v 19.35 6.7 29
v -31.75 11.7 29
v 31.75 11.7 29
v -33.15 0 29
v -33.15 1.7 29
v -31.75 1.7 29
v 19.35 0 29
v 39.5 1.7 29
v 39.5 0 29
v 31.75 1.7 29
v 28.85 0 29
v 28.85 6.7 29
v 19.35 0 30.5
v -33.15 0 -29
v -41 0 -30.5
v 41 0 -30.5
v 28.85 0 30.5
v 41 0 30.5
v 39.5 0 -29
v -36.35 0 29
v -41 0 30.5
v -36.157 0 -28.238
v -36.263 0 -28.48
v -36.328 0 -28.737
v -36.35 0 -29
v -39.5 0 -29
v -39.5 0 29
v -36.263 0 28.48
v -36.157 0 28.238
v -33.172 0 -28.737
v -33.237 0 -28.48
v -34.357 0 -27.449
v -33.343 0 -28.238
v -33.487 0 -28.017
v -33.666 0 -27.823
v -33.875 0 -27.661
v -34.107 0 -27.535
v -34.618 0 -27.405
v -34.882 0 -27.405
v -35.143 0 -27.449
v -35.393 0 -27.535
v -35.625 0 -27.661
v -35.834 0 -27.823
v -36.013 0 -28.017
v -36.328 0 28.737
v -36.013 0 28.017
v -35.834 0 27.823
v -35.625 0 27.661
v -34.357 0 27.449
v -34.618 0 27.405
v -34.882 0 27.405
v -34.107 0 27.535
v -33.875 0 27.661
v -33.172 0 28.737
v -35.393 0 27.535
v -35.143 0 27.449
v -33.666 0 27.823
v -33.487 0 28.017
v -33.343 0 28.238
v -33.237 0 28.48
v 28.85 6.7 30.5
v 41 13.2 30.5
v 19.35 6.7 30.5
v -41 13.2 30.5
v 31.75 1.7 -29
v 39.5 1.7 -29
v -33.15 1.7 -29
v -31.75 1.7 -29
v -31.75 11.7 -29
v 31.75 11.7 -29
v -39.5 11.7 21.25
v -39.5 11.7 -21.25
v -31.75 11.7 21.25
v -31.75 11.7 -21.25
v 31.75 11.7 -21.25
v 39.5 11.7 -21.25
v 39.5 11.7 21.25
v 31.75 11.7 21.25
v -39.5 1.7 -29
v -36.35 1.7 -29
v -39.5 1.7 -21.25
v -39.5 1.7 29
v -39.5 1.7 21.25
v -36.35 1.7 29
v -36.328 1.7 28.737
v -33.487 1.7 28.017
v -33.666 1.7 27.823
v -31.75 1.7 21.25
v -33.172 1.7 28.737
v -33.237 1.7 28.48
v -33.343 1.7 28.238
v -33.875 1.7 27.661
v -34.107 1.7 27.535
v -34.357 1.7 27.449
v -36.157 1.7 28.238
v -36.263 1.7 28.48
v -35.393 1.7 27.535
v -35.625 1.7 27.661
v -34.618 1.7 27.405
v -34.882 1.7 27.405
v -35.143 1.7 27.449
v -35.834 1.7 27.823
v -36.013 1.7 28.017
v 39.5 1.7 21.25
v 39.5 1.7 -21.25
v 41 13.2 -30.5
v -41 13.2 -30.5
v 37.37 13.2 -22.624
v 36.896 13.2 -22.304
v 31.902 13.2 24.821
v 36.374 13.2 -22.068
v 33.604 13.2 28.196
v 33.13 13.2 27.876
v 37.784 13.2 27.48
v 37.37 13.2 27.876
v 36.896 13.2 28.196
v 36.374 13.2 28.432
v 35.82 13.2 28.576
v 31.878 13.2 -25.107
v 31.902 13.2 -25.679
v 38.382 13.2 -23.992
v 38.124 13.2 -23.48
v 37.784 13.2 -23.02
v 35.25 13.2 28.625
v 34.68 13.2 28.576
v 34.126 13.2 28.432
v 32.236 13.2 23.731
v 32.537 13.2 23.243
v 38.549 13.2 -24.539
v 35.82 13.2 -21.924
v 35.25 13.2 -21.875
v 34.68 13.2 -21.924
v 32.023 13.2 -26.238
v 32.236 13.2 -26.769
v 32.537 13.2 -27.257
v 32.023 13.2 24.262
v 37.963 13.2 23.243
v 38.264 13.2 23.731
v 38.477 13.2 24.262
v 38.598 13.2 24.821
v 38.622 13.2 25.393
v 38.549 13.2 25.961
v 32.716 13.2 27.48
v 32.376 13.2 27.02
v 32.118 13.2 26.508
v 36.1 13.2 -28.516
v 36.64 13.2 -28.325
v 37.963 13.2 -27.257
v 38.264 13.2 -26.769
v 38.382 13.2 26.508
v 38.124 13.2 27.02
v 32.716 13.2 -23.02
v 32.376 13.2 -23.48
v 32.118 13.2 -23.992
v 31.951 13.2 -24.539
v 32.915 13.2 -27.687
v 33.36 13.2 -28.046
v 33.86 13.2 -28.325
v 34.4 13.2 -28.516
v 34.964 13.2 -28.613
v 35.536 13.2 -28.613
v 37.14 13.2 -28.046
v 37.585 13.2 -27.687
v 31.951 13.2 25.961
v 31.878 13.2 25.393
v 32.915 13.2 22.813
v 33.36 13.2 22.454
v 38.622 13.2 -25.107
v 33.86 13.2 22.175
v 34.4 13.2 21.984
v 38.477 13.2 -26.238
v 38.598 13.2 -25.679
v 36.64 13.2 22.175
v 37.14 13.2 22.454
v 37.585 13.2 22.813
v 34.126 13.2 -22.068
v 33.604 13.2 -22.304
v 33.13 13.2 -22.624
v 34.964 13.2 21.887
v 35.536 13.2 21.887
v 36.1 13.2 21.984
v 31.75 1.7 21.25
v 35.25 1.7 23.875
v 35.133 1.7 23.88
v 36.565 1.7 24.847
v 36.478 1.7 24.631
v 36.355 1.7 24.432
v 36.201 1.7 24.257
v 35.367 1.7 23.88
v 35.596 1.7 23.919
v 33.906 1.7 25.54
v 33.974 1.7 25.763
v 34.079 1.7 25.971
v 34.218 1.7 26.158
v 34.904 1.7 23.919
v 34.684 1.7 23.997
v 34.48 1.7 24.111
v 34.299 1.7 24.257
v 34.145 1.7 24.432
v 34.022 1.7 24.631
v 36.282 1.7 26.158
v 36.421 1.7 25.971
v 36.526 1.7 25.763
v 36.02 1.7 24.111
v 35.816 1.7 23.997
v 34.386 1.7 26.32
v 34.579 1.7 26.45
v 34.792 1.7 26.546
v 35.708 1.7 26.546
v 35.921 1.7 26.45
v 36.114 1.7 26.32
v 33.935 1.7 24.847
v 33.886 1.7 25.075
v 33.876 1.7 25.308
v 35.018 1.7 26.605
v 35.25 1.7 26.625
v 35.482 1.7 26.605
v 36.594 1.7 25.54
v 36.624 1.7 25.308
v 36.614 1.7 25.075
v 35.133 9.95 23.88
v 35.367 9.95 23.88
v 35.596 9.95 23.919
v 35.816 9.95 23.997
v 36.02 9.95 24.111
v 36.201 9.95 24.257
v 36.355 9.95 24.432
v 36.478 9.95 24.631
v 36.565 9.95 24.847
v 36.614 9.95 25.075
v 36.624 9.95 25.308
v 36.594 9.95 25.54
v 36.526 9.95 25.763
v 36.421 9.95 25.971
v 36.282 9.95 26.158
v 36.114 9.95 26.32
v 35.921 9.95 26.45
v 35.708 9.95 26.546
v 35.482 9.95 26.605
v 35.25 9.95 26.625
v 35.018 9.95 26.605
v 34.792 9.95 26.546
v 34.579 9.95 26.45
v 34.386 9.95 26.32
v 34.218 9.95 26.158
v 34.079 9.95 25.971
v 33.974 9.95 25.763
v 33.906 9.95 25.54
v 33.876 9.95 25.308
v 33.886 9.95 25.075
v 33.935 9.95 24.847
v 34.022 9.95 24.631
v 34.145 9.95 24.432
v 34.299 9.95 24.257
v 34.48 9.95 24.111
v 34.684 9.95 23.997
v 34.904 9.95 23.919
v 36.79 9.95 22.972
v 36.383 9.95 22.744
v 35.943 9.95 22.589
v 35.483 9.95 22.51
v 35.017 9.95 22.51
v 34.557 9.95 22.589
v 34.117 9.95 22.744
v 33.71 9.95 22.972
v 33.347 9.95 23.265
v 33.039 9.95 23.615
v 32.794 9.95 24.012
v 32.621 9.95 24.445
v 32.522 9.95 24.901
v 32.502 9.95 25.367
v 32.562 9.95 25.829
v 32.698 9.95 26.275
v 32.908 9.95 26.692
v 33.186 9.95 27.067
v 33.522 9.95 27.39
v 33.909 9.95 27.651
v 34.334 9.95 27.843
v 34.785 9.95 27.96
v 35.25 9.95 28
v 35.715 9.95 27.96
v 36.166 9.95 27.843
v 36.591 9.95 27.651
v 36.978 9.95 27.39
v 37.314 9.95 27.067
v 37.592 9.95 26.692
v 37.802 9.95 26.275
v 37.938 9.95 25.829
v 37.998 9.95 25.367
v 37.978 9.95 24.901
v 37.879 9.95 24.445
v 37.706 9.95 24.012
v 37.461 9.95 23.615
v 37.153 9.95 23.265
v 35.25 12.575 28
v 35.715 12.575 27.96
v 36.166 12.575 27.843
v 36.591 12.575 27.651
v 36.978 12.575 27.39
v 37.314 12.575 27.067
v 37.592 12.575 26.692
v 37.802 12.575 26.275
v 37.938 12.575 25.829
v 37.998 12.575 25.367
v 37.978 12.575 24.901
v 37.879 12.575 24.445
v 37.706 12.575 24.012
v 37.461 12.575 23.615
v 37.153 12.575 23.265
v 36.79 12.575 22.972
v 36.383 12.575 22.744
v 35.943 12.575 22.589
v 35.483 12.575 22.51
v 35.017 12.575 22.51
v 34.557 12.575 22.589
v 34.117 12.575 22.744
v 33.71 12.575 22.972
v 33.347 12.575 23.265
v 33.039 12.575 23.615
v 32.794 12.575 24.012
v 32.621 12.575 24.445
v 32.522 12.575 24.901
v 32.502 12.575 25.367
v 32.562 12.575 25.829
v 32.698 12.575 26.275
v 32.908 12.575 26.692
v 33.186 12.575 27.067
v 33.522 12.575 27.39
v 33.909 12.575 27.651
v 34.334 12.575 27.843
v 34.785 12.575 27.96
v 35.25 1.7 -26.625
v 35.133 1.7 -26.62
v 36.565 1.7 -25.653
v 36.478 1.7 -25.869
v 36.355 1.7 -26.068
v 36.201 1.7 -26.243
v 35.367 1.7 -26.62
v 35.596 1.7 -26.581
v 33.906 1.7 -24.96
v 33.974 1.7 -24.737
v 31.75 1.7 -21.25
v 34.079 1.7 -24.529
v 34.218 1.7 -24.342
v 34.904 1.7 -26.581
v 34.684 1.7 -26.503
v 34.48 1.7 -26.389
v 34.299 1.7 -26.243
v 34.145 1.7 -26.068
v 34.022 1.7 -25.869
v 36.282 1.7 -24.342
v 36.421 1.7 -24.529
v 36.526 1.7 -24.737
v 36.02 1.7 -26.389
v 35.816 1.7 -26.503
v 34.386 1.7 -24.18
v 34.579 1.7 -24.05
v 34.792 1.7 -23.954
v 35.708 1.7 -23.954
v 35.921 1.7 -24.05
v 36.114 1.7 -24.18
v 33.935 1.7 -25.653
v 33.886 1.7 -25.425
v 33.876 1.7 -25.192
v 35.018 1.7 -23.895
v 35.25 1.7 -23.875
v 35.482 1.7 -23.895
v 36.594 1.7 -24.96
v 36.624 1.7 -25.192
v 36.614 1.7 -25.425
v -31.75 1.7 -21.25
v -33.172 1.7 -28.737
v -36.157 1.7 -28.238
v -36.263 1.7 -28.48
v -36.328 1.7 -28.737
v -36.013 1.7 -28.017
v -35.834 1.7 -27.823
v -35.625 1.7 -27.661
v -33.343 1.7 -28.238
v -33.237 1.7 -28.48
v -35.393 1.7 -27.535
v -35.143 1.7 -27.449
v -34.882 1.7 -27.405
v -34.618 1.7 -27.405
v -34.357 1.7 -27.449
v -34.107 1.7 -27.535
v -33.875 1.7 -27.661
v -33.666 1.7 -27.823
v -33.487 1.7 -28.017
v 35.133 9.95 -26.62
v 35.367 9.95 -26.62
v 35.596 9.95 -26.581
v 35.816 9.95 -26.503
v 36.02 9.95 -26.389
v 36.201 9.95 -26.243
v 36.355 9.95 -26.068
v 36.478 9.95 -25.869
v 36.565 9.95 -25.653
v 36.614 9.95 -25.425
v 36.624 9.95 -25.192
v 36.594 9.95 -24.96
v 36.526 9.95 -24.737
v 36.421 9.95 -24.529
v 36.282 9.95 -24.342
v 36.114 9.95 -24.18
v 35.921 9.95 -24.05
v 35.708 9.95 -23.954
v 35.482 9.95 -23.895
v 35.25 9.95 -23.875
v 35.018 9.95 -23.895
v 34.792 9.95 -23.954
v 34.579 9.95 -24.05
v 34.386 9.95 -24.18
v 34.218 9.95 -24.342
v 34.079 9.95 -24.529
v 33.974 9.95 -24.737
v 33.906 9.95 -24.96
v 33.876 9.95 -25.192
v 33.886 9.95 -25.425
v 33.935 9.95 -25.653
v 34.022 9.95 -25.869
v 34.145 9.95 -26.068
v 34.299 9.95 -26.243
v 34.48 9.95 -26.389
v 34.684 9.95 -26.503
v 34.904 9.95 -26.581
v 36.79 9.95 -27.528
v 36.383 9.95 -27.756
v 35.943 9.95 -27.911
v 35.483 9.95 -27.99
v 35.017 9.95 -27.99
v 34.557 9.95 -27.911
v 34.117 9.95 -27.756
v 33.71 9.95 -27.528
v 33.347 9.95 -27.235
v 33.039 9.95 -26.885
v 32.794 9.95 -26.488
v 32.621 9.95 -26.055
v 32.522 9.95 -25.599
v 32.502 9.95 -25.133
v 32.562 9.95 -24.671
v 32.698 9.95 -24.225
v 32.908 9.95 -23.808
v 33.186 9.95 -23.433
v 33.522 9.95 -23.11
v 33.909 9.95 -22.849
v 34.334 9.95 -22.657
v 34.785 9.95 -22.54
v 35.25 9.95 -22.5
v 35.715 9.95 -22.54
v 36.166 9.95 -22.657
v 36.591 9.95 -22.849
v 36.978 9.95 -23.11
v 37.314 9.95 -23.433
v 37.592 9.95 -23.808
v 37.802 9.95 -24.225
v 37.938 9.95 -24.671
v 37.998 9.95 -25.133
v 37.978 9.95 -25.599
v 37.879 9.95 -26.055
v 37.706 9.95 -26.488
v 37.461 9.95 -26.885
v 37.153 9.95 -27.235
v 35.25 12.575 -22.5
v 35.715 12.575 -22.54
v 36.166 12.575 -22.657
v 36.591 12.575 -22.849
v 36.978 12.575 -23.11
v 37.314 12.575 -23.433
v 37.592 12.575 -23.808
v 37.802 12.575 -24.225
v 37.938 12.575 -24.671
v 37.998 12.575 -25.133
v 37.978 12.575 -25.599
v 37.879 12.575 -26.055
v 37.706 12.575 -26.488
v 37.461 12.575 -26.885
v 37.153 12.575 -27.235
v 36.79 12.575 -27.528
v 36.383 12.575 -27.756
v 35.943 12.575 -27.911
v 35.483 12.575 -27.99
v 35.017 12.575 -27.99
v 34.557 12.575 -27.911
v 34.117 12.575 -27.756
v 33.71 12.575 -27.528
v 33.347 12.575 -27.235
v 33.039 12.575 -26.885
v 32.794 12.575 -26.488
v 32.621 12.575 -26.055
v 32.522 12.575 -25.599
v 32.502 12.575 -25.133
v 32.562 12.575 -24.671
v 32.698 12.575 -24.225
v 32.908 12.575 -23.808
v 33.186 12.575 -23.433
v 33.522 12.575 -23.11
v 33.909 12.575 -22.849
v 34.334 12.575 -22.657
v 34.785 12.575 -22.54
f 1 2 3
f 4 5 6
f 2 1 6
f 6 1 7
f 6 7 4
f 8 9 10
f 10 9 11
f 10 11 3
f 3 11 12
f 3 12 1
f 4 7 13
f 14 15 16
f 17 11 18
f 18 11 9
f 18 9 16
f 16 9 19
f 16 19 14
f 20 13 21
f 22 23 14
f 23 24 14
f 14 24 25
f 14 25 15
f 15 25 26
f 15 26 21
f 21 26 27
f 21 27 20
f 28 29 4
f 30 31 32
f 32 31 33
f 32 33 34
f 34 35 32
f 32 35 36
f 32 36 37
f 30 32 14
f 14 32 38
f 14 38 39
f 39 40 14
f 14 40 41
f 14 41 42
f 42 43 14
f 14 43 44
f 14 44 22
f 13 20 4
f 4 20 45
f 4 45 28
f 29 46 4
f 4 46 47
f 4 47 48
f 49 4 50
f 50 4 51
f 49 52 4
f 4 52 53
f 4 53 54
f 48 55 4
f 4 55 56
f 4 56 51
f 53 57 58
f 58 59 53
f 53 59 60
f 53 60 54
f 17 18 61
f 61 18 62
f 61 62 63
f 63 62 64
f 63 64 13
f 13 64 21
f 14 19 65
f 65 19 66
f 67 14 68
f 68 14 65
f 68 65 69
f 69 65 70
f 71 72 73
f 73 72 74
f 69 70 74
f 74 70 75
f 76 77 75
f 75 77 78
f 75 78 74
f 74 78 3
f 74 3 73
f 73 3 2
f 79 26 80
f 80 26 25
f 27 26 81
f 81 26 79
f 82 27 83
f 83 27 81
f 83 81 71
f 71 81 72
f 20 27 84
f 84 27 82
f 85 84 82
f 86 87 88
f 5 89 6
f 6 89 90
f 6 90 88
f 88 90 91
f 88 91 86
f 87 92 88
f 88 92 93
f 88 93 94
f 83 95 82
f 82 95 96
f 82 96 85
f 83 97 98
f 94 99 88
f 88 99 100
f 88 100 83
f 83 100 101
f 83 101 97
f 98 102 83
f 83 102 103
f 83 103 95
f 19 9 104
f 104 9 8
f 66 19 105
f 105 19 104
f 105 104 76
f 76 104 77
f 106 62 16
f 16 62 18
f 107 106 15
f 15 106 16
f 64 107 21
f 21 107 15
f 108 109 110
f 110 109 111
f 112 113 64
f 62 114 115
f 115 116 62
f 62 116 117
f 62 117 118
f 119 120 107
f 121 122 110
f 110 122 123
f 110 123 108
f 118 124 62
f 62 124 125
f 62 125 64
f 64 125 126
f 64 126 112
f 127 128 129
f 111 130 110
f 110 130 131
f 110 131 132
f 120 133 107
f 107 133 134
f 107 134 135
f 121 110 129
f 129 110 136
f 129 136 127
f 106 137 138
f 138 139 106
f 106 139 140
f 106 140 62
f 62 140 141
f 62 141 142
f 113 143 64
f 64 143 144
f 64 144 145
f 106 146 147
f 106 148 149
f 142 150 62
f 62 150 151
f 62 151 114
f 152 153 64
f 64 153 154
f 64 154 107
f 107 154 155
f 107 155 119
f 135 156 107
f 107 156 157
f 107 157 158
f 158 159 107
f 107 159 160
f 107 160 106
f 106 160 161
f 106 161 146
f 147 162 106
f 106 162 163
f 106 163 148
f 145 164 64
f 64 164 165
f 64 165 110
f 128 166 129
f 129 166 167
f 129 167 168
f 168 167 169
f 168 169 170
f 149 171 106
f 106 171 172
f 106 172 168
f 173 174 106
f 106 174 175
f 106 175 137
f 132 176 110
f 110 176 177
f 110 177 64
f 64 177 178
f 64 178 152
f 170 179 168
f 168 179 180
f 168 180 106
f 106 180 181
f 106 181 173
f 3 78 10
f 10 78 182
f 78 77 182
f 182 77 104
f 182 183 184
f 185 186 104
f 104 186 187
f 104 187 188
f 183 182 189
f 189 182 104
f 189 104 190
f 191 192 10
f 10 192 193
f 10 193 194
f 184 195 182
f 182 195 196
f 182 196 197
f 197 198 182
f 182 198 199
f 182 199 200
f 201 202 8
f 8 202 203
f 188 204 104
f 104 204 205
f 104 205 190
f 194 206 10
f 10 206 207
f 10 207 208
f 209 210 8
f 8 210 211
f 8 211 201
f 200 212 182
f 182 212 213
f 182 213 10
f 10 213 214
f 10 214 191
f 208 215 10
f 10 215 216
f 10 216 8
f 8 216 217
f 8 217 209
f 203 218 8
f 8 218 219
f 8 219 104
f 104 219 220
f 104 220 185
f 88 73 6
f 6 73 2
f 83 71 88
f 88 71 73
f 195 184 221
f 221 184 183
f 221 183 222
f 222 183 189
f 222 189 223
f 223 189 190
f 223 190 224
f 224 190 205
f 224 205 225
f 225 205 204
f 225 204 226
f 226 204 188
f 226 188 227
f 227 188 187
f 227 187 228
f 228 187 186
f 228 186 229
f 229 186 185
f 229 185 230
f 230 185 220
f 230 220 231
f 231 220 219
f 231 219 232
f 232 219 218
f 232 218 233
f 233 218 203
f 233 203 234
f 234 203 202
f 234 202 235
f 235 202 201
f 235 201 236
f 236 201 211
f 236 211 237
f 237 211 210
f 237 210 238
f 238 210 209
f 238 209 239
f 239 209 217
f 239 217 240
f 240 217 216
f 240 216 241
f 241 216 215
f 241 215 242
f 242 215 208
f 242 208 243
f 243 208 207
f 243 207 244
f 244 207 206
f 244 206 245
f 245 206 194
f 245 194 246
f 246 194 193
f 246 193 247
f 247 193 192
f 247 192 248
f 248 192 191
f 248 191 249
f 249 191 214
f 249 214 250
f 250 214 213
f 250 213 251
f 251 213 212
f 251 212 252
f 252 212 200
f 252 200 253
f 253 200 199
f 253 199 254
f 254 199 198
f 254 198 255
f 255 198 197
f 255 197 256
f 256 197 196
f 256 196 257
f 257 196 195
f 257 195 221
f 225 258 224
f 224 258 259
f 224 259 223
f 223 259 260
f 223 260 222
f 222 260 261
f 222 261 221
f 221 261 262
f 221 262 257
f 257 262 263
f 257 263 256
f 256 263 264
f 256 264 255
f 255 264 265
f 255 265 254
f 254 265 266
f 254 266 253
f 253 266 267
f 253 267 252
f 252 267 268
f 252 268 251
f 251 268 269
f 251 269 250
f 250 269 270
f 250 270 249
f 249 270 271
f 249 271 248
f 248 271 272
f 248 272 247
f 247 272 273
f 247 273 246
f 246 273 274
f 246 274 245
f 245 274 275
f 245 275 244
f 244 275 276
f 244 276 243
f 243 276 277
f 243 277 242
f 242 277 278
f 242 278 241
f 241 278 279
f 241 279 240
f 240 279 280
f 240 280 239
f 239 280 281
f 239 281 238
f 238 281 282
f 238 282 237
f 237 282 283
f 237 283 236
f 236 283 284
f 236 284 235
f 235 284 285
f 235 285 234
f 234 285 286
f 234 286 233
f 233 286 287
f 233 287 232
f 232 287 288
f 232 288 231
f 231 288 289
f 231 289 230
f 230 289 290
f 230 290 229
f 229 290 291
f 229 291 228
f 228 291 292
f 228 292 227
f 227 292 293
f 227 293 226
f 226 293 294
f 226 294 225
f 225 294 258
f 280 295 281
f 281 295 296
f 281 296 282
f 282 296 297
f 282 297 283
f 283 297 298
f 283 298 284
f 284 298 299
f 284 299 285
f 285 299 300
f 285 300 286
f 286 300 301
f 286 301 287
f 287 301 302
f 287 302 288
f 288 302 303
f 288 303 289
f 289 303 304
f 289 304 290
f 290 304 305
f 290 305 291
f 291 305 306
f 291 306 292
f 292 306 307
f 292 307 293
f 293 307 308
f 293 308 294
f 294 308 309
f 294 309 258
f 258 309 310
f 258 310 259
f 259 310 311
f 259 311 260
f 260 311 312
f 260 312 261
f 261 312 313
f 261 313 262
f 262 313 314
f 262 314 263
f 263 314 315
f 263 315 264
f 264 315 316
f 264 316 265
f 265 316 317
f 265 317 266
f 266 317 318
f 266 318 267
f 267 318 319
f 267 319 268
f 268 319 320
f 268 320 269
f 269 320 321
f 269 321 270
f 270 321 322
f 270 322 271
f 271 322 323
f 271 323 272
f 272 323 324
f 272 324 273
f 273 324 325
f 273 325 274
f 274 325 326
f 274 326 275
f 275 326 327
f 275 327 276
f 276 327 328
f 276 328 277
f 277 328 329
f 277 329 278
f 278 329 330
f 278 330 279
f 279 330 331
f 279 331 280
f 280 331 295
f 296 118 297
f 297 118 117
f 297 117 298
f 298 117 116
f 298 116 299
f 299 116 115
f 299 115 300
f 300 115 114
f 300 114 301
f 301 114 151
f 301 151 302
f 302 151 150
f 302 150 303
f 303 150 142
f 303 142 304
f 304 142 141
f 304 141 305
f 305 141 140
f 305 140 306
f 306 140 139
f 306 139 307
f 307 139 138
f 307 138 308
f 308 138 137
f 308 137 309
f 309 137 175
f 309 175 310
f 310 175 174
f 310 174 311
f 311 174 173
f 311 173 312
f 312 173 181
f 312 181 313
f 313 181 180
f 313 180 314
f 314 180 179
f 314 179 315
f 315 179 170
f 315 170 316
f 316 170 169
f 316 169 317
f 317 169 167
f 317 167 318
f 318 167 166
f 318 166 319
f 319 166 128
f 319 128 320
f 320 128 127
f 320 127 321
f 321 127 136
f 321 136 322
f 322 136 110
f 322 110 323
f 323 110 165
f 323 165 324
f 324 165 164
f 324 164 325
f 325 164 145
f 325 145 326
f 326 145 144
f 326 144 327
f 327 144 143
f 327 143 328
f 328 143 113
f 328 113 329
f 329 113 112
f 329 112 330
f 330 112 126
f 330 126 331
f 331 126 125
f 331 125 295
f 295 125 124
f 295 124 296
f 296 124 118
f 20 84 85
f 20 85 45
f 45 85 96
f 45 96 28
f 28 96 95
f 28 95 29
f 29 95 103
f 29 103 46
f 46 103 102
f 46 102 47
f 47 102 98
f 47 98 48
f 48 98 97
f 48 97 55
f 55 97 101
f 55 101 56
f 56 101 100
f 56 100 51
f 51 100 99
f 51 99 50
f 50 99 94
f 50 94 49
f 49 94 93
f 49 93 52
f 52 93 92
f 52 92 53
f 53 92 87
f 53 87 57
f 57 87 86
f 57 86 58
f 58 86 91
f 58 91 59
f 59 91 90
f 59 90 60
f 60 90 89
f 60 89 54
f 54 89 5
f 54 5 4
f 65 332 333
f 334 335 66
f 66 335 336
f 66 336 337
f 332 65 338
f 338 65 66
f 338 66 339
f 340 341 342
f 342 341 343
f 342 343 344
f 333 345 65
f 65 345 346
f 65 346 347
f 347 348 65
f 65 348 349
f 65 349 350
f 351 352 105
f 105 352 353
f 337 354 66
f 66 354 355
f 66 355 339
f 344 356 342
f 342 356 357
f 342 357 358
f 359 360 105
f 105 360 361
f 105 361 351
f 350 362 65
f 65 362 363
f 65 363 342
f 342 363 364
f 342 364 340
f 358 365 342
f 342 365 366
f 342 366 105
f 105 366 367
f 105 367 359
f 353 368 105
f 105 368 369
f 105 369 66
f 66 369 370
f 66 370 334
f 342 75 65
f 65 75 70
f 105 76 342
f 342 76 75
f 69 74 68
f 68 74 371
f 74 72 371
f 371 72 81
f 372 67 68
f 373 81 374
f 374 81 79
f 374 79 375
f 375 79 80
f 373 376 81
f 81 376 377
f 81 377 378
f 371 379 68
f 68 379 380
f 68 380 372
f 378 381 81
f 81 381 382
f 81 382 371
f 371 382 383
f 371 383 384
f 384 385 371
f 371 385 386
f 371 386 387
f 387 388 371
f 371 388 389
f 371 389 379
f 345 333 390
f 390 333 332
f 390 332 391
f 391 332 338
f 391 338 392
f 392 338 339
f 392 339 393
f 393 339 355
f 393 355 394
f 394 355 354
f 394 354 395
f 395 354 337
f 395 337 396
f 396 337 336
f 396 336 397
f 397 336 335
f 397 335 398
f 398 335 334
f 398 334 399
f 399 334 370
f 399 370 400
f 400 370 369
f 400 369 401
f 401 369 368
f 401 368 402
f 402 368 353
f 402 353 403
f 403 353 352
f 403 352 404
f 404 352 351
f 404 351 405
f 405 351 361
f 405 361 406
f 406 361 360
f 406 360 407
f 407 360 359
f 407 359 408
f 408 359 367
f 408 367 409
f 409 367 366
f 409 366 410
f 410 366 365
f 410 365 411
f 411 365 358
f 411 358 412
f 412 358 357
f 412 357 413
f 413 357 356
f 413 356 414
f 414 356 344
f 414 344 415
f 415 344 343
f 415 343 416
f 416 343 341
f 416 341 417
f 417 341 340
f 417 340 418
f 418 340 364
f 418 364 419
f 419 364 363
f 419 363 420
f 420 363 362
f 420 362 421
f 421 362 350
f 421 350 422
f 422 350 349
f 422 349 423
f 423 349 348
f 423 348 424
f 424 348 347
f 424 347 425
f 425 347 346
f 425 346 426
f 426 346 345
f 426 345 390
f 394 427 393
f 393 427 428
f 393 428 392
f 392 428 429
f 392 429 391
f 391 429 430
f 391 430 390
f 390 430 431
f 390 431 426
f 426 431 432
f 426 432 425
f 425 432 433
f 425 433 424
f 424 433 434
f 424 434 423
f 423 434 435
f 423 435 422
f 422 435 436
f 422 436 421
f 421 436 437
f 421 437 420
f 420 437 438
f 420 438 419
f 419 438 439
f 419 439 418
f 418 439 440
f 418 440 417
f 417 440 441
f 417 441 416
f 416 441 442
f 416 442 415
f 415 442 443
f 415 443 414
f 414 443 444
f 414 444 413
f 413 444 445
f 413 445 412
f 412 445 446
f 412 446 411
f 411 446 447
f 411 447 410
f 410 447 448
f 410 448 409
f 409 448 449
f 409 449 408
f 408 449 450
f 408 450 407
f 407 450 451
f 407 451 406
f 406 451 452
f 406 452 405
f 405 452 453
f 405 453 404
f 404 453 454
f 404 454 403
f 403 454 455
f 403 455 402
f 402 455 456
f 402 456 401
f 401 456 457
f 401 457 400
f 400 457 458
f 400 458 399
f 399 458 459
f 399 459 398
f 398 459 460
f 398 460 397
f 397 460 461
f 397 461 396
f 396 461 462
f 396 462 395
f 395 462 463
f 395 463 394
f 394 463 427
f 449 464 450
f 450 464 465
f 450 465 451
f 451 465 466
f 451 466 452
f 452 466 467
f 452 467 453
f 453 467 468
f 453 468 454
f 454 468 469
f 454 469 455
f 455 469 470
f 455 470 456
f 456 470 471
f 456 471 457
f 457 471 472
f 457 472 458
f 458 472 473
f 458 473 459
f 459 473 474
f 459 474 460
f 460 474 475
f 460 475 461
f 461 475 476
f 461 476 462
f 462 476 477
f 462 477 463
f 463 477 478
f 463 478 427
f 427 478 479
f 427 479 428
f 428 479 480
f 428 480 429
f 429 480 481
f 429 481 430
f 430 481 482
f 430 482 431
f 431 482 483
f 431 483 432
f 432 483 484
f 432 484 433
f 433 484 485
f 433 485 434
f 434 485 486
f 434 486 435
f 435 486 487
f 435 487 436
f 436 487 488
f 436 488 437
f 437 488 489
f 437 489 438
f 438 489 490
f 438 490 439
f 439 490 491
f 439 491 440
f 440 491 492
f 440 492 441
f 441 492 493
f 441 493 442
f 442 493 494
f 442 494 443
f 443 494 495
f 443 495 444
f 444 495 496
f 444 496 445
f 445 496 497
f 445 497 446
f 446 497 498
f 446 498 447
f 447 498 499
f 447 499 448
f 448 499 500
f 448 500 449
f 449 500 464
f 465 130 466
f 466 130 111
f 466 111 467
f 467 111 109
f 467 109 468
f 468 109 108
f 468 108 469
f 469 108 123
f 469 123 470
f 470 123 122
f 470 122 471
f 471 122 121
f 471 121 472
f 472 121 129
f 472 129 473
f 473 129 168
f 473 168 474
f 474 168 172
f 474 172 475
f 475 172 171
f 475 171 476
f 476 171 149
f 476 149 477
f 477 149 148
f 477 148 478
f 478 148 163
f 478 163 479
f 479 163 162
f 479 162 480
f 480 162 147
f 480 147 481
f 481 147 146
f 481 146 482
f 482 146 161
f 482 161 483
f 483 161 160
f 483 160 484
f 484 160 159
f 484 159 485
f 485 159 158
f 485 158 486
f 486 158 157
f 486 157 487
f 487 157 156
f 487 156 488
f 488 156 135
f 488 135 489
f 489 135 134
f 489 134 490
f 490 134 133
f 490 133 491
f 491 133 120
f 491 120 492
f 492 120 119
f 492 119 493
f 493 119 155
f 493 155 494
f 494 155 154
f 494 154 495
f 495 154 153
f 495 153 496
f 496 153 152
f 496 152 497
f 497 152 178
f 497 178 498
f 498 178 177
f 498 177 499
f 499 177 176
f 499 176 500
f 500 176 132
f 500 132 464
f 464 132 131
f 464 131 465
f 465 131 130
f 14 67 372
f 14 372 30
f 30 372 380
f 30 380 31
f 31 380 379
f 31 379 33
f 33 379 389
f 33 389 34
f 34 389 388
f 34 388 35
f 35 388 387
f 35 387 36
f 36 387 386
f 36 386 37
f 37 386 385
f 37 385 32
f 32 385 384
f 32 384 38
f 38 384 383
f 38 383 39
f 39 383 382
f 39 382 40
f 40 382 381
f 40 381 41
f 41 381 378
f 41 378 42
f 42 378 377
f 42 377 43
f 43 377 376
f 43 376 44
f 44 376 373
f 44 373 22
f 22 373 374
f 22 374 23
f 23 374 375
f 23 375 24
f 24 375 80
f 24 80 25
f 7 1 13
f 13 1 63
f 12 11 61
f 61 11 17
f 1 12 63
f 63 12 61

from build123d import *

# Parameters (mm, degrees)
SKETCH1_W                      = 82
SKETCH1_H                      = 61
BOSS_EXTRUDE1_DEPTH            = 13.2
SHELL2_T                       = -1.5
SKETCH2_W                      = 7.75
SKETCH2_H                      = 7.75
BOSS_EXTRUDE2_DEPTH            = 10
BOSS_EXTRUDE3_DEPTH            = 1.7
MIRROR2_COPY_1_SKETCH_W        = 7.75
MIRROR2_COPY_1_SKETCH_H        = 7.75
MIRROR2_COPY_1_DEPTH           = 10
CUT_EXTRUDE1_REACH             = 76.674
SKETCH9_W                      = 9.5
SKETCH9_H                      = 6.7
CUT_EXTRUDE1_DIRECTION_2_DEPTH = 75.674225808


with BuildPart() as part:
    # Sketch1 → Boss-Extrude1 (new body)
    with BuildSketch(Plane(origin=(0, 0, 0), x_dir=(1, 0, 0), z_dir=(0, 1, 0))):
        Rectangle(SKETCH1_W, SKETCH1_H)
    extrude(amount=BOSS_EXTRUDE1_DEPTH)

    # Shell2
    shell2_openings = [part.faces().sort_by_distance(p)[0] for p in [
        (0, 0, 0),
    ]]
    offset(amount=SHELL2_T, openings=shell2_openings, kind=Kind.INTERSECTION)

    # Sketch2 → Boss-Extrude2 (add)
    with BuildSketch(Plane.XZ.offset(-11.7)):
        with Locations((35.625, 25.125)):
            Rectangle(SKETCH2_W, SKETCH2_H)
    boss_extrude2 = extrude(amount=BOSS_EXTRUDE2_DEPTH)

    # Mirror1: Boss-Extrude2 across plane
    add(boss_extrude2.mirror(Plane(origin=(0, 0, 0), x_dir=(0, 0, 1), z_dir=(1, 0, 0))))

    # Sketch6 → CBORE for M5 Hex Head Bolt1 (revolve, cut)
    with BuildSketch(Plane(origin=(35.25, 13.2, 25.25), x_dir=(0, 0, 1), z_dir=(1, 0, 0))):
        Polygon((0, 0), (0, 13.2), (1.375, 13.2), (1.375, 3.25), (2.75, 3.25), (2.75, 0.625), (3.375, 0), align=None)
    cbore_for_m5_hex_head_bolt1 = revolve(axis=Axis((35.25, 19.55, 25.25), (0, -1, 0)), mode=Mode.SUBTRACT)

    # Sketch8 → Boss-Extrude3 (add)
    with BuildSketch(Plane.XZ.offset(-1.7)):
        with BuildLine():
            Line((-36.35, 29), (-33.15, 29))
            ThreePointArc((-33.15, 29), (-34.75, 27.4), (-36.35, 29))
        make_face()
    boss_extrude3 = extrude(amount=BOSS_EXTRUDE3_DEPTH)

    # Mirror2: Boss-Extrude2, CBORE for M5 Hex Head Bolt1, Boss-Extrude3 across plane
    add(boss_extrude2.mirror(Plane.XY))
    add(cbore_for_m5_hex_head_bolt1.mirror(Plane.XY), mode=Mode.SUBTRACT)
    add(boss_extrude3.mirror(Plane.XY))

    # Mirror2 copy 1 sketch → Mirror2 copy 1 (add)
    with BuildSketch(Plane(origin=(0, 11.7, 0), x_dir=(-1, 0, 0), z_dir=(0, -1, 0))):
        with Locations((35.625, 25.125)):
            Rectangle(MIRROR2_COPY_1_SKETCH_W, MIRROR2_COPY_1_SKETCH_H)
    extrude(amount=MIRROR2_COPY_1_DEPTH)

    # Sketch9 → Cut-Extrude1 (cut, up to next)
    with BuildSketch(Plane.XY.offset(30.5), mode=Mode.PRIVATE) as cut_extrude1_sk1:
        with Locations((24.1, 3.35)):
            Rectangle(SKETCH9_W, SKETCH9_H)
    cut_extrude1_tool1 = extrude(cut_extrude1_sk1.sketch, amount=-CUT_EXTRUDE1_REACH, mode=Mode.PRIVATE) & part.part
    add(cut_extrude1_tool1.solids().sort_by_distance((24.1, 3.35, 30.5))[0], mode=Mode.SUBTRACT)

    # Sketch9 → Cut-Extrude1 direction 2 (cut)
    with BuildSketch(Plane.XY.offset(30.5)):
        with Locations((24.1, 3.35)):
            Rectangle(SKETCH9_W, SKETCH9_H)
    extrude(amount=CUT_EXTRUDE1_DIRECTION_2_DEPTH, mode=Mode.SUBTRACT)


solid = part.part
